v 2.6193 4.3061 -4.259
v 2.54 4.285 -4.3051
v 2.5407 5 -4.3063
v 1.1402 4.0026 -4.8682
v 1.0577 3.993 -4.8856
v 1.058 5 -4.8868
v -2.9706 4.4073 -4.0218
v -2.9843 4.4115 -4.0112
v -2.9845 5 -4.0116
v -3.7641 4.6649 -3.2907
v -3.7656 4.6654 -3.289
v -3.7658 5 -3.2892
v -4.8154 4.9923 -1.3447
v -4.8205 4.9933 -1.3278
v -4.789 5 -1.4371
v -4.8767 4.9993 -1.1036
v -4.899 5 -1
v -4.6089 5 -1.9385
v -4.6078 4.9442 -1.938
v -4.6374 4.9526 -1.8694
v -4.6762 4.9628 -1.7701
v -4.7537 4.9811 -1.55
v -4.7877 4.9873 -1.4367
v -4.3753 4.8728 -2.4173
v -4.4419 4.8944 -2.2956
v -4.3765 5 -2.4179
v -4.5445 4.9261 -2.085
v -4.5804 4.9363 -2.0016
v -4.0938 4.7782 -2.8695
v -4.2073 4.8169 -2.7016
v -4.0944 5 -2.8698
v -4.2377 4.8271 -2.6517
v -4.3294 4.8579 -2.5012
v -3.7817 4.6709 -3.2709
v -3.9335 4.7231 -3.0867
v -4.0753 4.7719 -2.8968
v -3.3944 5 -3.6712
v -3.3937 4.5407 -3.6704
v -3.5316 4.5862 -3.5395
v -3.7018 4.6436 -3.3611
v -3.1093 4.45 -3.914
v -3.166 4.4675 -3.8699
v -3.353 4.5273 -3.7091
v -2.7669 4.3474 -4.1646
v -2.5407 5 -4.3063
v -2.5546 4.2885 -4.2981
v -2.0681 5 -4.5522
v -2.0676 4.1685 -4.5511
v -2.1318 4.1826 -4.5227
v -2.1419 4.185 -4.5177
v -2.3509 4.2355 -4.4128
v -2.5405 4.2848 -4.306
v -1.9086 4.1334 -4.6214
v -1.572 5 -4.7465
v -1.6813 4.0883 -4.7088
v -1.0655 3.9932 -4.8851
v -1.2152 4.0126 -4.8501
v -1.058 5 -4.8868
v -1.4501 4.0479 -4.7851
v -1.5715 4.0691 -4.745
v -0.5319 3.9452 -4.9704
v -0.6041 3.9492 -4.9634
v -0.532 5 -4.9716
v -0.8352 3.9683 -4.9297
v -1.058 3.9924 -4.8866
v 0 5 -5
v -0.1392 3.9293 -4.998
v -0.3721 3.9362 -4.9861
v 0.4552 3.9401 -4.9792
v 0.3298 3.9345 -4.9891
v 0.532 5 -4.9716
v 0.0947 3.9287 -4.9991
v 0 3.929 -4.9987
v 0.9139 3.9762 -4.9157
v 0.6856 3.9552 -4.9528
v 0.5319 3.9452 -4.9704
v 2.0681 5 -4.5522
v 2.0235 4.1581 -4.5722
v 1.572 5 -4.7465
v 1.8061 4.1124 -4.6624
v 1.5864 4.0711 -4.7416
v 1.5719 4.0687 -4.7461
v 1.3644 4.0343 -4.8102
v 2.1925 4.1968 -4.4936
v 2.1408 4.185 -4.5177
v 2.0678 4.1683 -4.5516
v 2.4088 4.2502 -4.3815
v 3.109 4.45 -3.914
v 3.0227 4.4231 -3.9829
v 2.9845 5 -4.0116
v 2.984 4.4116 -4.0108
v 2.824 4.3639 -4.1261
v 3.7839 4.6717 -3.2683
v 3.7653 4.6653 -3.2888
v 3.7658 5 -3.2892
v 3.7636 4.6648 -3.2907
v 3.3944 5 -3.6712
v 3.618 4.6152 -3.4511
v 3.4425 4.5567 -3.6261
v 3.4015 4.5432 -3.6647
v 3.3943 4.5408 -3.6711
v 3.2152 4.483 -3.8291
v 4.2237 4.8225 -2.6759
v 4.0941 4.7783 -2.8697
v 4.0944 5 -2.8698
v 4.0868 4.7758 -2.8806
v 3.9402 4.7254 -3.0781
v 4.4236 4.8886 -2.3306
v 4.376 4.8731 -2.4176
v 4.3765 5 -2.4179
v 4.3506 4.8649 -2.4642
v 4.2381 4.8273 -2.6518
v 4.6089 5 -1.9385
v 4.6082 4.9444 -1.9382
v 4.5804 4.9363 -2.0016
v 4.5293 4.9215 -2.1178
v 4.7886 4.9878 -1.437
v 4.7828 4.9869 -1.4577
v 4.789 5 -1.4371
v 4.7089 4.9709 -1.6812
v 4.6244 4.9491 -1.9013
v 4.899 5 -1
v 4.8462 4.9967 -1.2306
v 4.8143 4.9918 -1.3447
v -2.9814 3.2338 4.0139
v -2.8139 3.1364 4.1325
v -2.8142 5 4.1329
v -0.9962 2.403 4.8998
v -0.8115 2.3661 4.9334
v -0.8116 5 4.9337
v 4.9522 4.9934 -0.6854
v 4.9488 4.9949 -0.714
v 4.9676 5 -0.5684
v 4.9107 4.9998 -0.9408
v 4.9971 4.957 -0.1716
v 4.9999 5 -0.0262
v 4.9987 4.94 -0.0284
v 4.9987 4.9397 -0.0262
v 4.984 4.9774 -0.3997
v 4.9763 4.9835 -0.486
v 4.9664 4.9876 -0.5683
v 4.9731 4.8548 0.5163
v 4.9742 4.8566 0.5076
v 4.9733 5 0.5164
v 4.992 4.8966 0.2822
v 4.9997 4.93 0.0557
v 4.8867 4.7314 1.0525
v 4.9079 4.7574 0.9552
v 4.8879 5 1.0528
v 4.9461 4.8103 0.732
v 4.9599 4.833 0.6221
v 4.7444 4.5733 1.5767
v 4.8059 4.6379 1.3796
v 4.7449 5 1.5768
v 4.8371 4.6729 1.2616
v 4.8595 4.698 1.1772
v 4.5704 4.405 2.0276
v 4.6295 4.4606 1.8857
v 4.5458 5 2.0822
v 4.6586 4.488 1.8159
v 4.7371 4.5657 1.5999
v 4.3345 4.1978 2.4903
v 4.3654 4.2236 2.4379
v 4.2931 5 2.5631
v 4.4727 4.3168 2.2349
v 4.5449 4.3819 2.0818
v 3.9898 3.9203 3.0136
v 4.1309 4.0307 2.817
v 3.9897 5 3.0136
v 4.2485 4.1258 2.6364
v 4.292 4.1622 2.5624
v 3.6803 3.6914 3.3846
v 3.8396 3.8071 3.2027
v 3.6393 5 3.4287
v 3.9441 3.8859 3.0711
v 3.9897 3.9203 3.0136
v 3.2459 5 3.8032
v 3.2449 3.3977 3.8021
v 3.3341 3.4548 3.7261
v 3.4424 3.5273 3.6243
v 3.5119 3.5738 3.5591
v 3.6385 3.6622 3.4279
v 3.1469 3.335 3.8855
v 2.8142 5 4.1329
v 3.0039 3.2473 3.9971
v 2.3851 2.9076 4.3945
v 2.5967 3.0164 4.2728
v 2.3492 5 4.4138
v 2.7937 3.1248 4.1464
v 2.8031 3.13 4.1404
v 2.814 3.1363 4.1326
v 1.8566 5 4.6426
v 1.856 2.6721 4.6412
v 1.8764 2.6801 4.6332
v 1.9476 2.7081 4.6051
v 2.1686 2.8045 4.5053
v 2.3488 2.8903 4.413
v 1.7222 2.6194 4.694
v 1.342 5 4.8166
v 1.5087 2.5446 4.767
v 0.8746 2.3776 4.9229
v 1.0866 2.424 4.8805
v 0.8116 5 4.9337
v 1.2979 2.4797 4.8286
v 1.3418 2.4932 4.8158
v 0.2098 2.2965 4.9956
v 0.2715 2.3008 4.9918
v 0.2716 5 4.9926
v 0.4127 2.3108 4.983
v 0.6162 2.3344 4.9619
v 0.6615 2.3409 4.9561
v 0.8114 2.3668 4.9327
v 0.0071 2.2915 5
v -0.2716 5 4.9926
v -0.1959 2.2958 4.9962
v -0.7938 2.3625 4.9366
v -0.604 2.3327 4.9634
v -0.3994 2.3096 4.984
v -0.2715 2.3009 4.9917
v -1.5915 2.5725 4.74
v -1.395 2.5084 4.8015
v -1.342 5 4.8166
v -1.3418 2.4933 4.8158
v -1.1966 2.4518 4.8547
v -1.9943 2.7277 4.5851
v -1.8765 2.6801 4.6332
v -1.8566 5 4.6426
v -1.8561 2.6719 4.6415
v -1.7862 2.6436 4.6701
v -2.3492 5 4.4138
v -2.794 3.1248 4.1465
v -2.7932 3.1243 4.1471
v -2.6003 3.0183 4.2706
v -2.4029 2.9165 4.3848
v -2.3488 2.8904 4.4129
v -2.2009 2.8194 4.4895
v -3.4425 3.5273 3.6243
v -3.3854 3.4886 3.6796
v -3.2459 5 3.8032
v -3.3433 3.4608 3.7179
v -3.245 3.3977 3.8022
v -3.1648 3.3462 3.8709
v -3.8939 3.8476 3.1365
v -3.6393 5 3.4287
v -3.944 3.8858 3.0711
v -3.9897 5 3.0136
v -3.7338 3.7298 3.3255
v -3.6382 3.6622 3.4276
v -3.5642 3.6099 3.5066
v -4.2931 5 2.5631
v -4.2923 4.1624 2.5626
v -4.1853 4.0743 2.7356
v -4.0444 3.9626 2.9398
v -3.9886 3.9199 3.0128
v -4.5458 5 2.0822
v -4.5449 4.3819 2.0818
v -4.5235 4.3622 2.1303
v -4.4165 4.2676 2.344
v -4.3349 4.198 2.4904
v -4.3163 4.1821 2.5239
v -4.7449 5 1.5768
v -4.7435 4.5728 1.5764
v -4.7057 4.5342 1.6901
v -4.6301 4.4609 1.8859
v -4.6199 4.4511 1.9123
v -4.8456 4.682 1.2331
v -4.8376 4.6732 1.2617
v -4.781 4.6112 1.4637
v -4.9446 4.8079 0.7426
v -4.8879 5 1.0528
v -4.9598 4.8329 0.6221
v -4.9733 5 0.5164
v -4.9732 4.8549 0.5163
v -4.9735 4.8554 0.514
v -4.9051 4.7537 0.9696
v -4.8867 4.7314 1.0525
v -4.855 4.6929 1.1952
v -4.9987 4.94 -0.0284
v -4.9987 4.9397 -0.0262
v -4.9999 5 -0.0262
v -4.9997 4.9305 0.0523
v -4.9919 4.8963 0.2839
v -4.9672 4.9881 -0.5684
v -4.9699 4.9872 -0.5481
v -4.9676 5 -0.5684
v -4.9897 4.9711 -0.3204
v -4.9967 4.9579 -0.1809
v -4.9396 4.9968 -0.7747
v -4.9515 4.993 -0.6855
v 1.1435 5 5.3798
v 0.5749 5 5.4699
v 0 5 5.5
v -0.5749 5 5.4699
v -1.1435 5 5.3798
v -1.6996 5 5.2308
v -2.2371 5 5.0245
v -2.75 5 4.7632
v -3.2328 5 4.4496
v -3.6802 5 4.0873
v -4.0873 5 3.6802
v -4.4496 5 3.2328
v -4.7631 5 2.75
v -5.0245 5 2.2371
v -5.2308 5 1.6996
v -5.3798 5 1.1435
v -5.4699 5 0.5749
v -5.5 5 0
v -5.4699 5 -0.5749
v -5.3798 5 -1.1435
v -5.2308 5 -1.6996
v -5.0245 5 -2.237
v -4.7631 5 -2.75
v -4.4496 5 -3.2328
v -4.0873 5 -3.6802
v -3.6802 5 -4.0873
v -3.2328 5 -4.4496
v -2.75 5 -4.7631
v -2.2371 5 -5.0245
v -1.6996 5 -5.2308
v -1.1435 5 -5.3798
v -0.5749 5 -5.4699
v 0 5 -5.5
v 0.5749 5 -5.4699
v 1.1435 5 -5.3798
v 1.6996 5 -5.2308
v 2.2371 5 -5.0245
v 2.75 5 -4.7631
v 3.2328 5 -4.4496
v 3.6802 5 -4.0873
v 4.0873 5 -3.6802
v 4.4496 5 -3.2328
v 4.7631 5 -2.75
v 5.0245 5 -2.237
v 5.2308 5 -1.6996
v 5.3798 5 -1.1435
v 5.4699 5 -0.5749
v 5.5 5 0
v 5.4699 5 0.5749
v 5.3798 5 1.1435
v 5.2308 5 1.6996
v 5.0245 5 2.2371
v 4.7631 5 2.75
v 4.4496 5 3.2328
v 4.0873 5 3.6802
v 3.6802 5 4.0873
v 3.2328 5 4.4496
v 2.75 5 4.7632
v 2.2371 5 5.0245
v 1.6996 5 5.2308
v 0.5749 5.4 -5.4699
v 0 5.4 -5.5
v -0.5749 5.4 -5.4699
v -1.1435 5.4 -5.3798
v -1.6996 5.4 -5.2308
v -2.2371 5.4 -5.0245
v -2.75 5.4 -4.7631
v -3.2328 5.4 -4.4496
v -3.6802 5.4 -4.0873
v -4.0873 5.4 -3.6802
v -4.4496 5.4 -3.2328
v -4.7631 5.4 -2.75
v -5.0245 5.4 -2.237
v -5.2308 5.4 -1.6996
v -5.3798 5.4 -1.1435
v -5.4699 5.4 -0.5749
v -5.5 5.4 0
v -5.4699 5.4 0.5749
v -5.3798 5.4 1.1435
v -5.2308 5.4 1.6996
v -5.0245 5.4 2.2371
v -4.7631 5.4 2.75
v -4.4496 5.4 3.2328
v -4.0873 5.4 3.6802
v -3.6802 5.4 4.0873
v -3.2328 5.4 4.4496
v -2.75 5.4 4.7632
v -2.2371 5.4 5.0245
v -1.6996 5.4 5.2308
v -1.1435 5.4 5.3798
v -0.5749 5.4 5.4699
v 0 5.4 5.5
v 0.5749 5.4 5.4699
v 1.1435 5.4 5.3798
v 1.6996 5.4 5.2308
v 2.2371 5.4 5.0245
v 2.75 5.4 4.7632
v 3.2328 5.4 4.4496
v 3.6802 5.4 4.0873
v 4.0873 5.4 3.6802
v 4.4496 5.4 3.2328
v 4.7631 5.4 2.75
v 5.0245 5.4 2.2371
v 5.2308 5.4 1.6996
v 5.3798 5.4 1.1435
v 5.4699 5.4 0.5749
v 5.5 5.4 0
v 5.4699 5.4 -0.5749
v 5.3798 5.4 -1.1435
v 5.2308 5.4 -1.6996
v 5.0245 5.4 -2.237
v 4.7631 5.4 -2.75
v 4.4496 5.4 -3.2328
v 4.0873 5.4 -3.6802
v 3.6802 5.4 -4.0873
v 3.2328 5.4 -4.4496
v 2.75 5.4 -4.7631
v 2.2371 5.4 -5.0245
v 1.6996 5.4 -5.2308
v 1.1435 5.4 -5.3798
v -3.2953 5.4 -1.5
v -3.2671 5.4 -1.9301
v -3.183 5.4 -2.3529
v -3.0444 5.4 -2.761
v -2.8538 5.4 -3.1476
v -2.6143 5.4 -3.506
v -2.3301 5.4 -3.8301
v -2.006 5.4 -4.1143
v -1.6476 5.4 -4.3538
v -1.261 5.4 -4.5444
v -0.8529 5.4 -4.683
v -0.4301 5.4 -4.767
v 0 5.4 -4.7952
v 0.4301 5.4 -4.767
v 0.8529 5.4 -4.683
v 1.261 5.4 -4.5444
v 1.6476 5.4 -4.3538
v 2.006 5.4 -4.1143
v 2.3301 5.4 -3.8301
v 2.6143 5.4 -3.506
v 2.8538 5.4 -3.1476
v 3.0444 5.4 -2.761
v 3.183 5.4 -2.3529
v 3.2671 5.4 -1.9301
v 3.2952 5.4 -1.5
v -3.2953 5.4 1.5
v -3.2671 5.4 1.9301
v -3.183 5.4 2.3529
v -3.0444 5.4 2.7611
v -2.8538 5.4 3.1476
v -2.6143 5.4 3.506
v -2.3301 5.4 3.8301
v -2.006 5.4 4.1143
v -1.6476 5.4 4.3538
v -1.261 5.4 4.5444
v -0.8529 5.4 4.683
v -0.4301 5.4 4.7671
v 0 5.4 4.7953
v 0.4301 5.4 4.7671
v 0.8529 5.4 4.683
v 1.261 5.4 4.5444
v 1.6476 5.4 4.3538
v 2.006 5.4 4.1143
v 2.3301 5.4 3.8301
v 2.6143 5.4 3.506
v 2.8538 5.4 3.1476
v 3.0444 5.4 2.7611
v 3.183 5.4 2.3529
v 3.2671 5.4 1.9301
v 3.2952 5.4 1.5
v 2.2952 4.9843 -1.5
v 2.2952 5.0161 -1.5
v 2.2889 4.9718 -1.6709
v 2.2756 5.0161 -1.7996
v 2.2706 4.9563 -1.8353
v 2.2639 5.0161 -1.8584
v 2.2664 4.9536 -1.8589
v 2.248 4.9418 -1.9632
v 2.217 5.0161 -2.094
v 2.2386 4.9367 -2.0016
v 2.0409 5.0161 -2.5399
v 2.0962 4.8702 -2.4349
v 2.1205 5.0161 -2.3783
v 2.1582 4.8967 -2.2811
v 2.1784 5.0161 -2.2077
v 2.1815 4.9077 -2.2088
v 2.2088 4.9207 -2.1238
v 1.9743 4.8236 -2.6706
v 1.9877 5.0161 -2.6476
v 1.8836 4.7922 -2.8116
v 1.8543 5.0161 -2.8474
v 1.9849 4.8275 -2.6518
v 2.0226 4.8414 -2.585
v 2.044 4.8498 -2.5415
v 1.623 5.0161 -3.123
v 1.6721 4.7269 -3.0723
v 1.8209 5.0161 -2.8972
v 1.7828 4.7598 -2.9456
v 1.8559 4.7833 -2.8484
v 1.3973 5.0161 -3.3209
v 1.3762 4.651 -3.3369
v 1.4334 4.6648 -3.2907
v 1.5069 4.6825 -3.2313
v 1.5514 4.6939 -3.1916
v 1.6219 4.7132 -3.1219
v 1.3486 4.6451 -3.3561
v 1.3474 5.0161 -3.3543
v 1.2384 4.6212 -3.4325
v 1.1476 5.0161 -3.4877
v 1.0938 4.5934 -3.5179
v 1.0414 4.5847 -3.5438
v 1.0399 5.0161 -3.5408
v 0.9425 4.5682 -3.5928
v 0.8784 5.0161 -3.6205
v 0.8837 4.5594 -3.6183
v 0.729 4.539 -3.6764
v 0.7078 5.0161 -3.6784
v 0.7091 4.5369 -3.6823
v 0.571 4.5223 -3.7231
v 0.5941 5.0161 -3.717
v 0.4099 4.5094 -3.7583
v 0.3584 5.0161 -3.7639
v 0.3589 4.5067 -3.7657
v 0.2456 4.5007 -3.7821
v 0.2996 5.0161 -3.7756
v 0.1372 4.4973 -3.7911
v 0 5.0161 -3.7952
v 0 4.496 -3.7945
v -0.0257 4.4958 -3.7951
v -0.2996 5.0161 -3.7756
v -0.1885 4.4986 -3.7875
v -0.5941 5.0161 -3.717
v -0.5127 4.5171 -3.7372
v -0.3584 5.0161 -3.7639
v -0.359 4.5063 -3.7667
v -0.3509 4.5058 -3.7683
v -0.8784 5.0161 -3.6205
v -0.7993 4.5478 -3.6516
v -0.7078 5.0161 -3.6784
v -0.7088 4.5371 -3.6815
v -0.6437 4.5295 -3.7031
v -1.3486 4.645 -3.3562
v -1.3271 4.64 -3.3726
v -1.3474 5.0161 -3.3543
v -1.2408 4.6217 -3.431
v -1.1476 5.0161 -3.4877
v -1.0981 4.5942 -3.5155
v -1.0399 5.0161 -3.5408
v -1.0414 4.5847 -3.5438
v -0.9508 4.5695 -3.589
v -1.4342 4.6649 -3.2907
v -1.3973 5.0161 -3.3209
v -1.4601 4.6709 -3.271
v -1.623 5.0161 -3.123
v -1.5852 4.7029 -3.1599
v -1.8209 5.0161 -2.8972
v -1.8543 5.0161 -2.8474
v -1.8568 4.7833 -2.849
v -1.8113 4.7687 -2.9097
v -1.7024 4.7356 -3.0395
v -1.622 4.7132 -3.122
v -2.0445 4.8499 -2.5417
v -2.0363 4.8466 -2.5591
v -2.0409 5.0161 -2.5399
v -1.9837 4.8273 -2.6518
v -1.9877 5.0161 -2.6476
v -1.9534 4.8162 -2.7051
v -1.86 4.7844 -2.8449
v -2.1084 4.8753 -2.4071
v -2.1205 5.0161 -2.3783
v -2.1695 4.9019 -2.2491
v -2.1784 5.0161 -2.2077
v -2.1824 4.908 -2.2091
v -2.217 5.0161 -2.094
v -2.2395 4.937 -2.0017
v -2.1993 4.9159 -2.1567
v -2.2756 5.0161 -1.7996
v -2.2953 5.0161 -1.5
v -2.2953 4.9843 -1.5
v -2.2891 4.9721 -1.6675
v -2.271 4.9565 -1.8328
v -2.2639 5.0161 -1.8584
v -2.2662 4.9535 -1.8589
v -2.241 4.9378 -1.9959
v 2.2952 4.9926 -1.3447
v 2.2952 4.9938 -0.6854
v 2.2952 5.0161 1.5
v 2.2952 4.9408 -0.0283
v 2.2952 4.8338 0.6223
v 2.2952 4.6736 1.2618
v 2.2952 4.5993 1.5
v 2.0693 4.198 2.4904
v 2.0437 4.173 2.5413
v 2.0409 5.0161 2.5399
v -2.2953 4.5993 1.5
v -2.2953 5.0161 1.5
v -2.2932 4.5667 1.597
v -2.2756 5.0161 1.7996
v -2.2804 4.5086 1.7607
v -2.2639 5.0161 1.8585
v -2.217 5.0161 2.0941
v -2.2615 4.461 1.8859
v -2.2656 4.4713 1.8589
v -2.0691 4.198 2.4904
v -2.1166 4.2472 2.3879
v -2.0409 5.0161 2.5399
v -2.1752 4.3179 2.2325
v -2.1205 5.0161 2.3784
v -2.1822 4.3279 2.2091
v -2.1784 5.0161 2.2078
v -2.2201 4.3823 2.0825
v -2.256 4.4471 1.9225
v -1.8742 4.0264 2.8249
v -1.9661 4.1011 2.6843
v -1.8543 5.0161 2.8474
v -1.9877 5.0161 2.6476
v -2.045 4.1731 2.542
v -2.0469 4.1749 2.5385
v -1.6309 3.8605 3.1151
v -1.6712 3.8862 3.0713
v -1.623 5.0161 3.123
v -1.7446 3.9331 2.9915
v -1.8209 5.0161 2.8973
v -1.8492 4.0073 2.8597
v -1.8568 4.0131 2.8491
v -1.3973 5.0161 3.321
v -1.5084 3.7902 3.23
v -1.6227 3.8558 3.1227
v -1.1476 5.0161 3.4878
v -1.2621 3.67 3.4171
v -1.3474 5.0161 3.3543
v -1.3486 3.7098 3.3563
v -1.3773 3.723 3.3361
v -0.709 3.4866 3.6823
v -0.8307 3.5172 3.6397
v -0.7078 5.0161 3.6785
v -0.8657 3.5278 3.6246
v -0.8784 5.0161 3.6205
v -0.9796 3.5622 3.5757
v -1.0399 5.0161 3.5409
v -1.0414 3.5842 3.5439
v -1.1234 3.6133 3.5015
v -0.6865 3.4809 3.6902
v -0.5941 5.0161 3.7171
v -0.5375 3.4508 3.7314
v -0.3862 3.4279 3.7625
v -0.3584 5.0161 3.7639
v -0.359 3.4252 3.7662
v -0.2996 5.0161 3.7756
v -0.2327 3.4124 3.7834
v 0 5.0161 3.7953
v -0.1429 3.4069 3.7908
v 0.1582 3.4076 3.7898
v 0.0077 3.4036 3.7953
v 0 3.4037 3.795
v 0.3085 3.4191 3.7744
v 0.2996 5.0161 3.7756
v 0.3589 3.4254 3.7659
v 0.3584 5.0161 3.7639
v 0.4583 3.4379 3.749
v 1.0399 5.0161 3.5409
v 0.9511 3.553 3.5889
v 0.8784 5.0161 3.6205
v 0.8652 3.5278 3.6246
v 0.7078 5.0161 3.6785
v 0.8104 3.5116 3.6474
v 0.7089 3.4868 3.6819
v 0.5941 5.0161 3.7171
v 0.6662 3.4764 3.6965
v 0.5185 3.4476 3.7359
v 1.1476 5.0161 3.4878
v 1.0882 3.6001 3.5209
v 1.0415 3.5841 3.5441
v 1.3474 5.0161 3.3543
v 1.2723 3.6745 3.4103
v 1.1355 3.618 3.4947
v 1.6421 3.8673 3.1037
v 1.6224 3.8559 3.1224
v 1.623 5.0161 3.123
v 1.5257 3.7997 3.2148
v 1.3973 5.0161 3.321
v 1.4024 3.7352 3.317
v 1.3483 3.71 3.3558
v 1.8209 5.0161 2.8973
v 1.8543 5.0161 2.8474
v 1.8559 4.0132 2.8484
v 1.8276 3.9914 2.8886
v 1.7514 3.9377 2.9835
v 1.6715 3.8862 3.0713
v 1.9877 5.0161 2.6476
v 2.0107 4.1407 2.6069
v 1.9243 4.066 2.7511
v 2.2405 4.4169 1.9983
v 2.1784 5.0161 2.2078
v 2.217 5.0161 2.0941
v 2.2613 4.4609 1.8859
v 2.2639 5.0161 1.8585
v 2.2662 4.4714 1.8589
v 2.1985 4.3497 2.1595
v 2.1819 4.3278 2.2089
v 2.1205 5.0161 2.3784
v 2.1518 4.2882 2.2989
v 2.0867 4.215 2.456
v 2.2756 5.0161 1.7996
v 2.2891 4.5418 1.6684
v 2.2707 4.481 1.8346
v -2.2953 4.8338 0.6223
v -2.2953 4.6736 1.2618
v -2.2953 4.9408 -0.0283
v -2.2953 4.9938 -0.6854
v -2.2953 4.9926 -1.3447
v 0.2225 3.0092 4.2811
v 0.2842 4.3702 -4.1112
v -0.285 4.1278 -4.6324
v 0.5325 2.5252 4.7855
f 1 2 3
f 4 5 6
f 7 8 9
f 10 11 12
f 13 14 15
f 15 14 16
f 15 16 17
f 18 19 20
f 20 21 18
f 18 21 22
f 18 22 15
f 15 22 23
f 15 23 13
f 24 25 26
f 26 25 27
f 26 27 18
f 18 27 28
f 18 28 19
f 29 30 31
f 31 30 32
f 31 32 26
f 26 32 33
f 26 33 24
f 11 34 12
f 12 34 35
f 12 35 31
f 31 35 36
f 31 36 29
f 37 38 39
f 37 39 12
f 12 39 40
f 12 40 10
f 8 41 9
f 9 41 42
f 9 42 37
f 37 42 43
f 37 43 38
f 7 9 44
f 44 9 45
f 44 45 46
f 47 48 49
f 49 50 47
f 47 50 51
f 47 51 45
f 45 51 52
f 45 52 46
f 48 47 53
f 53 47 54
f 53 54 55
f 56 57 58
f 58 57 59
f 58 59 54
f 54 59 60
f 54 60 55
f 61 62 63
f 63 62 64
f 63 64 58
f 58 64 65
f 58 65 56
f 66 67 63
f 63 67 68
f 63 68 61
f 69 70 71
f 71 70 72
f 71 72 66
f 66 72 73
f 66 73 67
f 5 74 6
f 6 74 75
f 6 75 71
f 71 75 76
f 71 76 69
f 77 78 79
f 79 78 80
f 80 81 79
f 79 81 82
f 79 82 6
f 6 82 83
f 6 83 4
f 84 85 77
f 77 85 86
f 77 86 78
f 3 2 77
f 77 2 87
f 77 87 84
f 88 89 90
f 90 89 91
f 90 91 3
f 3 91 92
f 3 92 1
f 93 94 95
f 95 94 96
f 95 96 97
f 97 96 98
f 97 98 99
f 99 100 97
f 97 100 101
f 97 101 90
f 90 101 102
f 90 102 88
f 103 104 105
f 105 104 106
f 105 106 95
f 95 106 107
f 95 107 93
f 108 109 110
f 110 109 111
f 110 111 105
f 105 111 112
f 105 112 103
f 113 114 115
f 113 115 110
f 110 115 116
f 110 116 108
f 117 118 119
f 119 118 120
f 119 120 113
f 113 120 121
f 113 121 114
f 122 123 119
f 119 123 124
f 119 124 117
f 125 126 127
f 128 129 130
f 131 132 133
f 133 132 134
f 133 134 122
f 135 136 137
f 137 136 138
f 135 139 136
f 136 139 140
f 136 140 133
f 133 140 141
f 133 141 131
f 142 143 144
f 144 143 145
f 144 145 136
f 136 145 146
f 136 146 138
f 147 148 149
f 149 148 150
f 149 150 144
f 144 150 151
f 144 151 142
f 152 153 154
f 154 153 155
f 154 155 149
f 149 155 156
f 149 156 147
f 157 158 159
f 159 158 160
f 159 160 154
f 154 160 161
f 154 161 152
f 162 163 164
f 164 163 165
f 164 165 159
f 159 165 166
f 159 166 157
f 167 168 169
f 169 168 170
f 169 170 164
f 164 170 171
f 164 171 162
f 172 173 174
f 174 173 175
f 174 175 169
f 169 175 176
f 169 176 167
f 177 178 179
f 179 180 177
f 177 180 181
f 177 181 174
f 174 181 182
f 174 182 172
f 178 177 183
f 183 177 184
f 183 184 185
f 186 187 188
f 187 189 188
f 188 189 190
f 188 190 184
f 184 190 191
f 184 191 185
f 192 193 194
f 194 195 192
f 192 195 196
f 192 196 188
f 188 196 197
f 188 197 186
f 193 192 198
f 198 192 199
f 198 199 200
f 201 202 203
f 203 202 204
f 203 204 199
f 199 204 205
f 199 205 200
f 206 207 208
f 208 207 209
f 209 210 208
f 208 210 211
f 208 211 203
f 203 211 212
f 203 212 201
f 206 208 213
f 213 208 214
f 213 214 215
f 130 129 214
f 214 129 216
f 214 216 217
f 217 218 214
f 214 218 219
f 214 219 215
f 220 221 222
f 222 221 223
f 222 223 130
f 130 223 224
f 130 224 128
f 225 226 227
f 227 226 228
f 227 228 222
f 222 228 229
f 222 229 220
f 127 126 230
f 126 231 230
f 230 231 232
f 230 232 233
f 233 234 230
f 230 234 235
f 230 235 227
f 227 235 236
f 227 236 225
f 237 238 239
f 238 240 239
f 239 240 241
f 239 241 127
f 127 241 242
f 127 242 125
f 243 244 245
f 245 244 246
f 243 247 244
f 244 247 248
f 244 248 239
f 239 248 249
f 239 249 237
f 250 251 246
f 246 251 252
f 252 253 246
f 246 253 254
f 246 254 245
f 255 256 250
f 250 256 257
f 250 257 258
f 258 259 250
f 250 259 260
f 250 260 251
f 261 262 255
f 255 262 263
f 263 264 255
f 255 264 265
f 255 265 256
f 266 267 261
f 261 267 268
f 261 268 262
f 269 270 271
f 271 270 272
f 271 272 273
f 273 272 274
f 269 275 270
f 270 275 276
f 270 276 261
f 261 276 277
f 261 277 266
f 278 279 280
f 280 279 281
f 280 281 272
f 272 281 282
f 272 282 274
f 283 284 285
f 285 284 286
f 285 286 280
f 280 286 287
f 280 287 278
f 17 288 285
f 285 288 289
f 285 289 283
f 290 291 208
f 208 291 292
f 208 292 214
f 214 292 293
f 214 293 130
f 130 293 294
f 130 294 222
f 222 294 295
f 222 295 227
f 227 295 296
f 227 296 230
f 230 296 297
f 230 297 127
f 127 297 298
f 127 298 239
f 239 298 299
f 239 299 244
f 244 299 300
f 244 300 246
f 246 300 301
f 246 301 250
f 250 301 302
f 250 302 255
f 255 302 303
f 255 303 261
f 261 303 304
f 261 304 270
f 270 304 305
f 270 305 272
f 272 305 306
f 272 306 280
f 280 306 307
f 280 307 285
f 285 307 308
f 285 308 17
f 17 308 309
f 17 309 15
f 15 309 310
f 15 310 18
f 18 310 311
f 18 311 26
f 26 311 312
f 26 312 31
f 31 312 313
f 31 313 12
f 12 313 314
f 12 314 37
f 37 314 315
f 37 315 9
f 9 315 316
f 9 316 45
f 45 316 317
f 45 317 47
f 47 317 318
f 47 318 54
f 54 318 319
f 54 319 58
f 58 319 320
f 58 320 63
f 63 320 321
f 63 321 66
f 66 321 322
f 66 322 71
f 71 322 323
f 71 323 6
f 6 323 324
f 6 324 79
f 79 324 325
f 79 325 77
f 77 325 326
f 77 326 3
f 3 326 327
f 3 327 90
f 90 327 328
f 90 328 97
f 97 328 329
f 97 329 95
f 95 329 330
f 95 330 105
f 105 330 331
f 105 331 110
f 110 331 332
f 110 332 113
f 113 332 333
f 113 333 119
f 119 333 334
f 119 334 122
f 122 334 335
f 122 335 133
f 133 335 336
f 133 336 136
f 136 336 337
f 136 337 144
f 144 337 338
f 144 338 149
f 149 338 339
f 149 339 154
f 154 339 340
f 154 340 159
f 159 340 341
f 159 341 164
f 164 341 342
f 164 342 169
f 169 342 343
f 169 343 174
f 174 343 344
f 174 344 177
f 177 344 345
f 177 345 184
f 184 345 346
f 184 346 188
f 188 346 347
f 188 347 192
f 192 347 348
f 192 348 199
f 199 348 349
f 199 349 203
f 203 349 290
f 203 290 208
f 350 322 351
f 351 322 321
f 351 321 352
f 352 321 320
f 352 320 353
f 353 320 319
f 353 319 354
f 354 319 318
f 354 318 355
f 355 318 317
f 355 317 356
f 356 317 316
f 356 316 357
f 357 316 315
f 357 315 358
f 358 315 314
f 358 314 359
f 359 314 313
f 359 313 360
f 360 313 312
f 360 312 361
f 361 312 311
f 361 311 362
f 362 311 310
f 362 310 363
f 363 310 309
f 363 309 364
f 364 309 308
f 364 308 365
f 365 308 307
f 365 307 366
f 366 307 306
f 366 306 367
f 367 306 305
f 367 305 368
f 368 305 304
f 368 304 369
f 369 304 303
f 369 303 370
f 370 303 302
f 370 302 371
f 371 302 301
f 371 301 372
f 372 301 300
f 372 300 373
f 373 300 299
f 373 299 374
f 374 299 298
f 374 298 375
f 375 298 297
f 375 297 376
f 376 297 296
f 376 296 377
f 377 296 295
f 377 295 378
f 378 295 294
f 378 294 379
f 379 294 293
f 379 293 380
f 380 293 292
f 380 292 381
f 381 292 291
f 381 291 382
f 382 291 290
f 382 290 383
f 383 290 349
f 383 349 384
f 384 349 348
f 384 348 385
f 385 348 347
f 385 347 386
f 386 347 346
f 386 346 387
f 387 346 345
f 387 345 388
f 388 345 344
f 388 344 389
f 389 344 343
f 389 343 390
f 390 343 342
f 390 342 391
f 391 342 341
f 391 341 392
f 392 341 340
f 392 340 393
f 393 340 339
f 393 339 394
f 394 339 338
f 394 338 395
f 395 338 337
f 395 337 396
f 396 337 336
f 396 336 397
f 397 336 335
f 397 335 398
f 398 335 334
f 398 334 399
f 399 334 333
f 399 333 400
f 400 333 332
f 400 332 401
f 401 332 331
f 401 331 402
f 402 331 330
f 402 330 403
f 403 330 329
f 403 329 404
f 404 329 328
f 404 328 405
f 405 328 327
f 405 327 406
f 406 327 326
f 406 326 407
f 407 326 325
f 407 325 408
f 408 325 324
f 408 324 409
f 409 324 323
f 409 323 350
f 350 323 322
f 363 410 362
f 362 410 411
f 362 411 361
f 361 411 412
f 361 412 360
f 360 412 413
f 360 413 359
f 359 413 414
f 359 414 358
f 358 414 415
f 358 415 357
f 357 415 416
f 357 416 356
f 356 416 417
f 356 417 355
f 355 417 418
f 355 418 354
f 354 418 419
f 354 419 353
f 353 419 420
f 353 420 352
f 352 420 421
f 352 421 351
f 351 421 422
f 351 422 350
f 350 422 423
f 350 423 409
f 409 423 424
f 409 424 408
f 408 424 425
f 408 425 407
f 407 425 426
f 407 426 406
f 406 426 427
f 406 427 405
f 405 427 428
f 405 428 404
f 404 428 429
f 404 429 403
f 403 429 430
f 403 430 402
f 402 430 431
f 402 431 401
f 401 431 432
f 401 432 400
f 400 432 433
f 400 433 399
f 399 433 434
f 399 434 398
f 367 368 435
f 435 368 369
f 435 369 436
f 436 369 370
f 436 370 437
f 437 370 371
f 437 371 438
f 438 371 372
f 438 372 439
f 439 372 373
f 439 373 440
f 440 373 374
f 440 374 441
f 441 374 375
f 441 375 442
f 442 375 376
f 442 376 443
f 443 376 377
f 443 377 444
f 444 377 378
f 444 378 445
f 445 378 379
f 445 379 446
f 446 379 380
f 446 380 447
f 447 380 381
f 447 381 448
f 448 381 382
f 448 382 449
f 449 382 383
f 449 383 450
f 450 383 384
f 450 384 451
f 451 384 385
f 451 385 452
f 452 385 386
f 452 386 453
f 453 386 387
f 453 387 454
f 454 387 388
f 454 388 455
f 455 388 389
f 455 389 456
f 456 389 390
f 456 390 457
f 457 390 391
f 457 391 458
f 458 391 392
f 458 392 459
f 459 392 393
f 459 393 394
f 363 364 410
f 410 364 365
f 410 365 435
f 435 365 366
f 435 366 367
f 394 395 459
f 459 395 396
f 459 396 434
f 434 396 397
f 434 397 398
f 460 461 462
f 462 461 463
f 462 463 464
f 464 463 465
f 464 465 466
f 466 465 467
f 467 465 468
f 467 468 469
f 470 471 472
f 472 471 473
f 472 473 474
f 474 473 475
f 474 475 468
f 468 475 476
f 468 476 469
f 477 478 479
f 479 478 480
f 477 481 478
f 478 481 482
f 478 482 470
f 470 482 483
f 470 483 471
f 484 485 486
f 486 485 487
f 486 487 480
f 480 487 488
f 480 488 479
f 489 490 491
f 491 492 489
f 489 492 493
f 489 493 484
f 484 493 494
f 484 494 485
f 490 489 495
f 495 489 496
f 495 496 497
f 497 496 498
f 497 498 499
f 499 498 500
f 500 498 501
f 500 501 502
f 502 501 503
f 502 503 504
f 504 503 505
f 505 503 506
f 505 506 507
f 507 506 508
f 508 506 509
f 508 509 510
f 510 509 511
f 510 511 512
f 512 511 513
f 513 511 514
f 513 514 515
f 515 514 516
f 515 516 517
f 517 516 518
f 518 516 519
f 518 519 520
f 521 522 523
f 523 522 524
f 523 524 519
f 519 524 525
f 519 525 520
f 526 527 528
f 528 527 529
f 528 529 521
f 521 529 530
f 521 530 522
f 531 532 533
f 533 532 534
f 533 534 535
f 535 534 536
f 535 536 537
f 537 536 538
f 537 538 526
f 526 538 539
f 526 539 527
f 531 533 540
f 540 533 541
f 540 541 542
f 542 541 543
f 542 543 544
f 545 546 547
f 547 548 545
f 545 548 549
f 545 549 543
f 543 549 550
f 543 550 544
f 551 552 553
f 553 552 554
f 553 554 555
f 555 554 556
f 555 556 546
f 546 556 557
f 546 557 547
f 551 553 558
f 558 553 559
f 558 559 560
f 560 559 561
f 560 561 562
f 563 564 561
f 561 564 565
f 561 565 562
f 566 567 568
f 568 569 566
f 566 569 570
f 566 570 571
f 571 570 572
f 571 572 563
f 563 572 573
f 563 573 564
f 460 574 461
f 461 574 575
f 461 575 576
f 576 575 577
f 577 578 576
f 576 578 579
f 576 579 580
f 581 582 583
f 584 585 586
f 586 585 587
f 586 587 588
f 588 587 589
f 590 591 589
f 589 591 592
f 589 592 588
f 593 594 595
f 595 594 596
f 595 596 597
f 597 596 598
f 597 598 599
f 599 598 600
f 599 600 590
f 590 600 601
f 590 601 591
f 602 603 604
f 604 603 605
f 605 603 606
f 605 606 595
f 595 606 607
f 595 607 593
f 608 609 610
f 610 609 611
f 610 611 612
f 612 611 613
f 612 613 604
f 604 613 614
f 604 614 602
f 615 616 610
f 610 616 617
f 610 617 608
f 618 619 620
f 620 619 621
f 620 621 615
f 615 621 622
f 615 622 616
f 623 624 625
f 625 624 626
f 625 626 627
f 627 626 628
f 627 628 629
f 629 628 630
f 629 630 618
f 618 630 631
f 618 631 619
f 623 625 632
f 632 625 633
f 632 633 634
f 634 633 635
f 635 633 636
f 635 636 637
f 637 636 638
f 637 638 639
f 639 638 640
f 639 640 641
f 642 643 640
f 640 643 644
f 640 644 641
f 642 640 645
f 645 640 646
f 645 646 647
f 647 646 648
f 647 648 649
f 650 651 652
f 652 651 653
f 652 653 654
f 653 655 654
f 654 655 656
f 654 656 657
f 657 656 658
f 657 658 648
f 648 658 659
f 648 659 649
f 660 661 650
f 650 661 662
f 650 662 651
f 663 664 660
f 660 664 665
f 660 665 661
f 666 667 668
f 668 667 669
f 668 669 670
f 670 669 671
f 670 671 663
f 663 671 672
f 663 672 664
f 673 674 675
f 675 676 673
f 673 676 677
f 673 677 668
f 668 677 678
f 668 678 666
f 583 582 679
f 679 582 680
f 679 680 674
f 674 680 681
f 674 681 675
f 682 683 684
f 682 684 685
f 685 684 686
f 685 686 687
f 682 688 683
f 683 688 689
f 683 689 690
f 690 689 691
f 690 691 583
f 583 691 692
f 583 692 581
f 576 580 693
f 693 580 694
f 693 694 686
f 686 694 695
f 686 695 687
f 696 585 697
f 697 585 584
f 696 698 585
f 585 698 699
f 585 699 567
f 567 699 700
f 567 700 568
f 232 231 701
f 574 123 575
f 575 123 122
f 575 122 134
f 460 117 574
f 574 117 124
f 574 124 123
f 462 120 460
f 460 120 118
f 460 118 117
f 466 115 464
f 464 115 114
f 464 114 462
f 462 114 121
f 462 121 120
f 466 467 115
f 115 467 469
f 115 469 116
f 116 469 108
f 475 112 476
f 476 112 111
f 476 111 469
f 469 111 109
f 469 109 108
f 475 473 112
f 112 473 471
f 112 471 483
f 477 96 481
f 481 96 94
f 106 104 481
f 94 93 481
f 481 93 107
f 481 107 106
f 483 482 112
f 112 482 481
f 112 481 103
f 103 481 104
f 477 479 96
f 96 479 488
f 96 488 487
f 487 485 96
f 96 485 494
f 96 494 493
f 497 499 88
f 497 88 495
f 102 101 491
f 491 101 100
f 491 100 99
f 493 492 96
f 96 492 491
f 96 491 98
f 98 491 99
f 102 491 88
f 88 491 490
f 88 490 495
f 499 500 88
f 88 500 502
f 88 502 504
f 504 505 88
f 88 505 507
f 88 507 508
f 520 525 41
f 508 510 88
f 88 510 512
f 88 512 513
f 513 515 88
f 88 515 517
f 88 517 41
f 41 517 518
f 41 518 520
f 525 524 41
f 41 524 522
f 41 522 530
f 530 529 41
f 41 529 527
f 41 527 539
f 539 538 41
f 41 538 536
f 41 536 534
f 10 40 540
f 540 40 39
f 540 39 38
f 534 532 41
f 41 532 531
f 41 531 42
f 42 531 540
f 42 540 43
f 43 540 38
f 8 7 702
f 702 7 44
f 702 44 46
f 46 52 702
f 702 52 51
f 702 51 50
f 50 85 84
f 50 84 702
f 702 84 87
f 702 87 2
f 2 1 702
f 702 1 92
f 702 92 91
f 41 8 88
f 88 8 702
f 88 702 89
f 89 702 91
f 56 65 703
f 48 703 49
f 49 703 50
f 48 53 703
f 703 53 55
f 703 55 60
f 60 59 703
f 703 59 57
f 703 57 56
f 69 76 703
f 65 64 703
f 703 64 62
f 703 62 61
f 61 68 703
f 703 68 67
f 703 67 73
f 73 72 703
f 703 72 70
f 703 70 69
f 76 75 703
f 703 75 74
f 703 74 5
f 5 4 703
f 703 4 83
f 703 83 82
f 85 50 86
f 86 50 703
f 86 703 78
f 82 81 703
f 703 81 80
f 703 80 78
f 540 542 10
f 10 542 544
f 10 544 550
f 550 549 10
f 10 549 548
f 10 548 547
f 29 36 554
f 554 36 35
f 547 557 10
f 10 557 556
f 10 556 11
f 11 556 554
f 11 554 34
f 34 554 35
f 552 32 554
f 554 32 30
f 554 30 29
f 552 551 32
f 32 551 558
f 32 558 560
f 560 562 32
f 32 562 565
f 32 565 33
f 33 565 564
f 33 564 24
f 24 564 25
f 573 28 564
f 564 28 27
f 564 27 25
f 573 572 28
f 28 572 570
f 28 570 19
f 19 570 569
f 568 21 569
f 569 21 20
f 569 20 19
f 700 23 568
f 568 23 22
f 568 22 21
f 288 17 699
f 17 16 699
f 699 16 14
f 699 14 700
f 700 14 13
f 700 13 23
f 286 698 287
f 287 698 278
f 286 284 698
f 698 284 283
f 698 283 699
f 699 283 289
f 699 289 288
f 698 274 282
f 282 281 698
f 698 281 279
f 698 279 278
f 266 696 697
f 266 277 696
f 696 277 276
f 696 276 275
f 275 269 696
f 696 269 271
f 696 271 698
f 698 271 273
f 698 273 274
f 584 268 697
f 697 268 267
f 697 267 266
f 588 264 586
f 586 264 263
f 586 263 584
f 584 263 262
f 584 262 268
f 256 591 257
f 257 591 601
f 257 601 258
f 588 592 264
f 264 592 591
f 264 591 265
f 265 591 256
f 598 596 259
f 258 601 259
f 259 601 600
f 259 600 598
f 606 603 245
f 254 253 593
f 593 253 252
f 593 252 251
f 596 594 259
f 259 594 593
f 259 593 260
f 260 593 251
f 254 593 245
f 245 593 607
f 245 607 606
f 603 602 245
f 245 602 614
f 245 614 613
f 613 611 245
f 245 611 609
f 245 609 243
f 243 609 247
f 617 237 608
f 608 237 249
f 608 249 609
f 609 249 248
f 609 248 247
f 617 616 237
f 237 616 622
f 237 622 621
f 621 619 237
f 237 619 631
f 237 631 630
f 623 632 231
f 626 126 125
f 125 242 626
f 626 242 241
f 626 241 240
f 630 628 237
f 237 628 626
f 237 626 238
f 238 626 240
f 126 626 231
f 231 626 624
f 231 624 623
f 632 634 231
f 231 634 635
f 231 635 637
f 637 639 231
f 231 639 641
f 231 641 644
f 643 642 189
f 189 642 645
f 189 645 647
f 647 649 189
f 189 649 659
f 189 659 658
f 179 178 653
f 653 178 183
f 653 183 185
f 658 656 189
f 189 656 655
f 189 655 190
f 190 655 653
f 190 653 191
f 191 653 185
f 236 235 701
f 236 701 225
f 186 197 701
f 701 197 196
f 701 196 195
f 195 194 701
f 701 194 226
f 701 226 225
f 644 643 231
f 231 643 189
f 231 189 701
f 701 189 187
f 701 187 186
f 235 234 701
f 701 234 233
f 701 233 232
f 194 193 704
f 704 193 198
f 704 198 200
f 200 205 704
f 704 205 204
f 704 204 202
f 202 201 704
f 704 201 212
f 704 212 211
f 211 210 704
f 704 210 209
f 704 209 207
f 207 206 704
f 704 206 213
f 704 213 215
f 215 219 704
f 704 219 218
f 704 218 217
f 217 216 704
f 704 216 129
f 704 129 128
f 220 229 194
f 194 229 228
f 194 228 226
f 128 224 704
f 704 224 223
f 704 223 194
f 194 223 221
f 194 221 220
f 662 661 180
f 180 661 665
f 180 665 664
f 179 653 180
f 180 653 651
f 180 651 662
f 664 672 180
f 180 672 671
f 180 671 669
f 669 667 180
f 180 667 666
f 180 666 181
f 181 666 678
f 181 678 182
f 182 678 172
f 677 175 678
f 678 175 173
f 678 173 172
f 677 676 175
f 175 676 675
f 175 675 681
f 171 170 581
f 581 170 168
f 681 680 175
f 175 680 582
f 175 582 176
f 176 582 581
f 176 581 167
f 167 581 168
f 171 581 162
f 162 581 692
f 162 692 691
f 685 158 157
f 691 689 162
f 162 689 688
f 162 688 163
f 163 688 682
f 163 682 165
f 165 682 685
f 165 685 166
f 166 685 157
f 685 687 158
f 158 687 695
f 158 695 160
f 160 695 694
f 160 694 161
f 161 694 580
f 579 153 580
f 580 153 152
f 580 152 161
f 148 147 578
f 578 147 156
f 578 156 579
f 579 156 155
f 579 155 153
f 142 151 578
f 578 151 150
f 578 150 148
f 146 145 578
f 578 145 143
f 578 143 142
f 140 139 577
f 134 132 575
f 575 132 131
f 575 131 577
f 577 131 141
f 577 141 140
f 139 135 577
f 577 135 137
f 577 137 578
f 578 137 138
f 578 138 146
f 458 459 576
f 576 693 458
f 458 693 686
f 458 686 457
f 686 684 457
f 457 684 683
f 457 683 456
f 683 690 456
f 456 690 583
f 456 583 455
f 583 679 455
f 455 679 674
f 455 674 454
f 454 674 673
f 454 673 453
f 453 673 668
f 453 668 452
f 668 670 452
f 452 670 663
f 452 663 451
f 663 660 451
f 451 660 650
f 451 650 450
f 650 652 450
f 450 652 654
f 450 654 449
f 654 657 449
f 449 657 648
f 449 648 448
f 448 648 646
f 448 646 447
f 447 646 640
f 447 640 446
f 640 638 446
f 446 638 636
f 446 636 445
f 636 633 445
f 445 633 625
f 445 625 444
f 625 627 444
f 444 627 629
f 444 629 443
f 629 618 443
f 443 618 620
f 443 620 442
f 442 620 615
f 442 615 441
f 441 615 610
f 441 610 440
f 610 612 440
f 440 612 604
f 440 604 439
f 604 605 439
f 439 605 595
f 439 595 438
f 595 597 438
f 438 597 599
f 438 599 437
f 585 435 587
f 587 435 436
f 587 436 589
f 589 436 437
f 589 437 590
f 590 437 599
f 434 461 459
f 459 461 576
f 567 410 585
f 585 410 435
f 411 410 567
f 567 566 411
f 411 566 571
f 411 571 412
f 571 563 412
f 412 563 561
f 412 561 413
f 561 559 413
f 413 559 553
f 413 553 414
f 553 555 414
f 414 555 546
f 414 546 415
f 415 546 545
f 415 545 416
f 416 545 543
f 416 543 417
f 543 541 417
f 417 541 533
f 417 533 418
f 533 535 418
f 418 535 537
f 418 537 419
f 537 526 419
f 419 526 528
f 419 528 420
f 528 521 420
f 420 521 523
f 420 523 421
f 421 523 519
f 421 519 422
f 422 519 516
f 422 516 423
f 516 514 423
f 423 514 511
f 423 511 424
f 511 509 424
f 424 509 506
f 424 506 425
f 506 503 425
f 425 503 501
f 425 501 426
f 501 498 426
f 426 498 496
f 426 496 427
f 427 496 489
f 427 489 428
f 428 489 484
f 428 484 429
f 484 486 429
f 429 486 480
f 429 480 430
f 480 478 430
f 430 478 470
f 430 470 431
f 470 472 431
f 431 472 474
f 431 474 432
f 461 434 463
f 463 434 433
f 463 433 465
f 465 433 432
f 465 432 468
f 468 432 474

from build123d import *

# Parameters (mm, degrees)
SKETCH1_R               = 5
BOSS_EXTRUDE1_DEPTH     = 5
SKETCH2_R               = 5.5
BOSS_EXTRUDE2_DEPTH     = 0.4
CUT_EXTRUDE1_DEPTH      = 6.4
SKETCH5_R               = 8
CUT_EXTRUDE2_DEPTH      = 6.5
CUT_EXTRUDE2_DEPTH_BACK = 6.5
CHAMFER4_SIZE           = 1
CHAMFER4_SIZE2          = 0.383864035


with BuildPart() as part:
    # Sketch1 → Boss-Extrude1 (new body)
    with BuildSketch(Plane(origin=(0, 0, 0), x_dir=(1, 0, 0), z_dir=(0, 1, 0))):
        Circle(SKETCH1_R)
    extrude(amount=BOSS_EXTRUDE1_DEPTH)

    # Sketch2 → Boss-Extrude2 (add)
    with BuildSketch(Plane(origin=(0, 5, 0), x_dir=(1, 0, 0), z_dir=(0, 1, 0))):
        Circle(SKETCH2_R)
    extrude(amount=BOSS_EXTRUDE2_DEPTH)

    # Sketch4 → Cut-Extrude1 (cut, through all)
    with BuildSketch(Plane(origin=(0, 5.4, 0), x_dir=(1, 0, 0), z_dir=(0, 1, 0))):
        with BuildLine():
            Line((2.295250379, 1.5), (2.295250379, -1.5))
            ThreePointArc((2.295250379, -1.5), (0, -3.795250379), (-2.295250379, -1.5))
            Line((-2.295250379, -1.5), (-2.295250379, 1.5))
            ThreePointArc((-2.295250379, 1.5), (0, 3.795250379), (2.295250379, 1.5))
        make_face()
    extrude(amount=-CUT_EXTRUDE1_DEPTH, mode=Mode.SUBTRACT)

    # Sketch5 → Cut-Extrude2 (cut, two sides)
    with BuildSketch(Plane(origin=(0, 0, 0), x_dir=(0, 0, -1), z_dir=(1, 0, 0))) as cut_extrude2_sk:
        with Locations((1, -3)):
            Circle(SKETCH5_R)
    extrude(amount=CUT_EXTRUDE2_DEPTH, mode=Mode.SUBTRACT)
    extrude(cut_extrude2_sk.sketch, amount=-CUT_EXTRUDE2_DEPTH_BACK, mode=Mode.SUBTRACT)

    # Chamfer4
    chamfer4_edges = [part.edges().sort_by_distance(p)[0] for p in [
        (0, 5.4, -3.795250379),
        (-2.295250379, 5.4, 0),
        (0, 5.4, 3.795250379),
        (2.295250379, 5.4, 0),
    ]]
    chamfer4_side = [part.faces().sort_by_distance(p)[0] for p in [
        (-5.344436508, 5.4, 0),
    ]]
    chamfer(chamfer4_edges, length=CHAMFER4_SIZE, length2=CHAMFER4_SIZE2, reference=chamfer4_side[0])


solid = part.part
